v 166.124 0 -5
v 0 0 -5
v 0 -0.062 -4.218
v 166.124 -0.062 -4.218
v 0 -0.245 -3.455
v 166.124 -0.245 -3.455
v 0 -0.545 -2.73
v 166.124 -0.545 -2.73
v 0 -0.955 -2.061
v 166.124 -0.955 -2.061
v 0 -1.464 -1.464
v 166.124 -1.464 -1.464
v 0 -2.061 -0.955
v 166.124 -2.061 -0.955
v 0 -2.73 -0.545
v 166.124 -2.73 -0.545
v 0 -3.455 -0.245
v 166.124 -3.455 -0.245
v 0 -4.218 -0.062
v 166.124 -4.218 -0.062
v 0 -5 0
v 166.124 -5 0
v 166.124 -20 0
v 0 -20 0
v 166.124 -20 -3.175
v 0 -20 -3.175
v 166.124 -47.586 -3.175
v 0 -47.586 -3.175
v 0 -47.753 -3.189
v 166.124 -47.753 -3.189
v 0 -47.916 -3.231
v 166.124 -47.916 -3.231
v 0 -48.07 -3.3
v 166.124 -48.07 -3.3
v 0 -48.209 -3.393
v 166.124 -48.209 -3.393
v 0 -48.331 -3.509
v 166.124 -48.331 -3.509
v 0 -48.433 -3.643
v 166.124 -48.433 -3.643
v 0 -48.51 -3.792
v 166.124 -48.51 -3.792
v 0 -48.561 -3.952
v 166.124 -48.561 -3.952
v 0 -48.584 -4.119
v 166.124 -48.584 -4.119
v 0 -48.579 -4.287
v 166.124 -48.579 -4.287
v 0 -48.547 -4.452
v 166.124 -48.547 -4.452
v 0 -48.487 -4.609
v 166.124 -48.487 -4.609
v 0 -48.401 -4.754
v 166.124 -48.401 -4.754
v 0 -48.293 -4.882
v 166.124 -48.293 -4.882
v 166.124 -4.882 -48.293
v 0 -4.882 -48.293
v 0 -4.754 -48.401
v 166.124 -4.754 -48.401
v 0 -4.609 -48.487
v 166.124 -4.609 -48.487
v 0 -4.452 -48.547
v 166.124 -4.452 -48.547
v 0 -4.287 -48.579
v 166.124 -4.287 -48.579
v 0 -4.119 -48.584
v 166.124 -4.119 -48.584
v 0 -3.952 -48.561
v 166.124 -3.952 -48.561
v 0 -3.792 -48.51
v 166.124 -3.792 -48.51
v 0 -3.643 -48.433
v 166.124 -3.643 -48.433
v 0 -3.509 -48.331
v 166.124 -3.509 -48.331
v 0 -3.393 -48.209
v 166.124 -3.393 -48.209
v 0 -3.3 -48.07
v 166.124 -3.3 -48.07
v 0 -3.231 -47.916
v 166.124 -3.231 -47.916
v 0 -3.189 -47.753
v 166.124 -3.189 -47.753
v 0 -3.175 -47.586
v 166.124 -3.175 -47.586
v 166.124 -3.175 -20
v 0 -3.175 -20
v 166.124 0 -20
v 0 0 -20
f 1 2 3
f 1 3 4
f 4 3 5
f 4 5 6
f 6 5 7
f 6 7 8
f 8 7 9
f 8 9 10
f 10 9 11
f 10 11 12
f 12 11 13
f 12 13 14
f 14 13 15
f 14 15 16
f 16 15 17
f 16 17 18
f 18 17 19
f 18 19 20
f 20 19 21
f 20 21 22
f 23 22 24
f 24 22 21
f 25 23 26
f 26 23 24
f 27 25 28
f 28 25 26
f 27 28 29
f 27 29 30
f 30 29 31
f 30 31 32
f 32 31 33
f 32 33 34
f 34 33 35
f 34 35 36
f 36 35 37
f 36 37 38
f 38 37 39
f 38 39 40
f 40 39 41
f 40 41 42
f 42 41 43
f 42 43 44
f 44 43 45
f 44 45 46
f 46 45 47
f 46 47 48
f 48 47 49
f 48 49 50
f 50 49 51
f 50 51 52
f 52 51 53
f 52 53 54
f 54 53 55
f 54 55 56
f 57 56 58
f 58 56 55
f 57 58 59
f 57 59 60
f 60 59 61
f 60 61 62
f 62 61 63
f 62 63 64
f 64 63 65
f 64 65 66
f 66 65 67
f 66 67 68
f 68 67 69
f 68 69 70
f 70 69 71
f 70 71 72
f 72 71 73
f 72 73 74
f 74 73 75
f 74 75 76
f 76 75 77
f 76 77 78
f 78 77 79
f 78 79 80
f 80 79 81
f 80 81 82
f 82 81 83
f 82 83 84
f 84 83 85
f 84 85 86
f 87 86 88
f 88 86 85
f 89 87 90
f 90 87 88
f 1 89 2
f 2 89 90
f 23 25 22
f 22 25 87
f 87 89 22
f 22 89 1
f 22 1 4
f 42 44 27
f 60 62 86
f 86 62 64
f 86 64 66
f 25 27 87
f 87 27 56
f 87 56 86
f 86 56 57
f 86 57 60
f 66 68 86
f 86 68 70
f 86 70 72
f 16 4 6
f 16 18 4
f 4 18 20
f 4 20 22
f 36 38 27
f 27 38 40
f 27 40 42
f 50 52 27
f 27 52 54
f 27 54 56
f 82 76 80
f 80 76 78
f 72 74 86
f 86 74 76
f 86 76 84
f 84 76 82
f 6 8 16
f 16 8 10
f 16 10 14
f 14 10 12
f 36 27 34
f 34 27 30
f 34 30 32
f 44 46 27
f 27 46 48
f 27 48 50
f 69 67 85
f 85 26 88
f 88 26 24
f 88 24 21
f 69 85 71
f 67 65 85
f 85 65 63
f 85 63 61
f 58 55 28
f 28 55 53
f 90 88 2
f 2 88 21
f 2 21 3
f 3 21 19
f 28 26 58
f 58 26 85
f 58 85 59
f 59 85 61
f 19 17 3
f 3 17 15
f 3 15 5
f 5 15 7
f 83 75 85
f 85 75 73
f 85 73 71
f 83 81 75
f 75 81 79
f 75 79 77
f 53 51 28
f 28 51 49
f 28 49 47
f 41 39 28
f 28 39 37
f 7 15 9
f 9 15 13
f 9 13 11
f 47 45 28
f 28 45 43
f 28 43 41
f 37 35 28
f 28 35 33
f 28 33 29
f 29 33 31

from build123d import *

# Parameters (mm, degrees)
BOSS_EXTRUDE1_DEPTH = 166.124


with BuildPart() as part:
    # Sketch1 → Boss-Extrude1 (new body)
    with BuildSketch(Plane(origin=(0, 0, 0), x_dir=(0, 0, -1), z_dir=(1, 0, 0))):
        with BuildLine():
            Line((0, -20), (0, -5))
            ThreePointArc((0, -5), (1.464466094, -1.464466094), (5, 0))
            Line((5, 0), (20, 0))
            Line((20, 0), (20, -3.175))
            Line((20, -3.175), (47.585786438, -3.175))
            ThreePointArc((47.585786438, -3.175), (48.50966597, -3.792316568), (48.292893219, -4.882106781))
            Line((48.292893219, -4.882106781), (4.882106781, -48.292893219))
            ThreePointArc((4.882106781, -48.292893219), (3.792316568, -48.50966597), (3.175, -47.585786438))
            Line((3.175, -47.585786438), (3.175, -20))
            Line((3.175, -20), (0, -20))
        make_face()
    extrude(amount=BOSS_EXTRUDE1_DEPTH)


solid = part.part
